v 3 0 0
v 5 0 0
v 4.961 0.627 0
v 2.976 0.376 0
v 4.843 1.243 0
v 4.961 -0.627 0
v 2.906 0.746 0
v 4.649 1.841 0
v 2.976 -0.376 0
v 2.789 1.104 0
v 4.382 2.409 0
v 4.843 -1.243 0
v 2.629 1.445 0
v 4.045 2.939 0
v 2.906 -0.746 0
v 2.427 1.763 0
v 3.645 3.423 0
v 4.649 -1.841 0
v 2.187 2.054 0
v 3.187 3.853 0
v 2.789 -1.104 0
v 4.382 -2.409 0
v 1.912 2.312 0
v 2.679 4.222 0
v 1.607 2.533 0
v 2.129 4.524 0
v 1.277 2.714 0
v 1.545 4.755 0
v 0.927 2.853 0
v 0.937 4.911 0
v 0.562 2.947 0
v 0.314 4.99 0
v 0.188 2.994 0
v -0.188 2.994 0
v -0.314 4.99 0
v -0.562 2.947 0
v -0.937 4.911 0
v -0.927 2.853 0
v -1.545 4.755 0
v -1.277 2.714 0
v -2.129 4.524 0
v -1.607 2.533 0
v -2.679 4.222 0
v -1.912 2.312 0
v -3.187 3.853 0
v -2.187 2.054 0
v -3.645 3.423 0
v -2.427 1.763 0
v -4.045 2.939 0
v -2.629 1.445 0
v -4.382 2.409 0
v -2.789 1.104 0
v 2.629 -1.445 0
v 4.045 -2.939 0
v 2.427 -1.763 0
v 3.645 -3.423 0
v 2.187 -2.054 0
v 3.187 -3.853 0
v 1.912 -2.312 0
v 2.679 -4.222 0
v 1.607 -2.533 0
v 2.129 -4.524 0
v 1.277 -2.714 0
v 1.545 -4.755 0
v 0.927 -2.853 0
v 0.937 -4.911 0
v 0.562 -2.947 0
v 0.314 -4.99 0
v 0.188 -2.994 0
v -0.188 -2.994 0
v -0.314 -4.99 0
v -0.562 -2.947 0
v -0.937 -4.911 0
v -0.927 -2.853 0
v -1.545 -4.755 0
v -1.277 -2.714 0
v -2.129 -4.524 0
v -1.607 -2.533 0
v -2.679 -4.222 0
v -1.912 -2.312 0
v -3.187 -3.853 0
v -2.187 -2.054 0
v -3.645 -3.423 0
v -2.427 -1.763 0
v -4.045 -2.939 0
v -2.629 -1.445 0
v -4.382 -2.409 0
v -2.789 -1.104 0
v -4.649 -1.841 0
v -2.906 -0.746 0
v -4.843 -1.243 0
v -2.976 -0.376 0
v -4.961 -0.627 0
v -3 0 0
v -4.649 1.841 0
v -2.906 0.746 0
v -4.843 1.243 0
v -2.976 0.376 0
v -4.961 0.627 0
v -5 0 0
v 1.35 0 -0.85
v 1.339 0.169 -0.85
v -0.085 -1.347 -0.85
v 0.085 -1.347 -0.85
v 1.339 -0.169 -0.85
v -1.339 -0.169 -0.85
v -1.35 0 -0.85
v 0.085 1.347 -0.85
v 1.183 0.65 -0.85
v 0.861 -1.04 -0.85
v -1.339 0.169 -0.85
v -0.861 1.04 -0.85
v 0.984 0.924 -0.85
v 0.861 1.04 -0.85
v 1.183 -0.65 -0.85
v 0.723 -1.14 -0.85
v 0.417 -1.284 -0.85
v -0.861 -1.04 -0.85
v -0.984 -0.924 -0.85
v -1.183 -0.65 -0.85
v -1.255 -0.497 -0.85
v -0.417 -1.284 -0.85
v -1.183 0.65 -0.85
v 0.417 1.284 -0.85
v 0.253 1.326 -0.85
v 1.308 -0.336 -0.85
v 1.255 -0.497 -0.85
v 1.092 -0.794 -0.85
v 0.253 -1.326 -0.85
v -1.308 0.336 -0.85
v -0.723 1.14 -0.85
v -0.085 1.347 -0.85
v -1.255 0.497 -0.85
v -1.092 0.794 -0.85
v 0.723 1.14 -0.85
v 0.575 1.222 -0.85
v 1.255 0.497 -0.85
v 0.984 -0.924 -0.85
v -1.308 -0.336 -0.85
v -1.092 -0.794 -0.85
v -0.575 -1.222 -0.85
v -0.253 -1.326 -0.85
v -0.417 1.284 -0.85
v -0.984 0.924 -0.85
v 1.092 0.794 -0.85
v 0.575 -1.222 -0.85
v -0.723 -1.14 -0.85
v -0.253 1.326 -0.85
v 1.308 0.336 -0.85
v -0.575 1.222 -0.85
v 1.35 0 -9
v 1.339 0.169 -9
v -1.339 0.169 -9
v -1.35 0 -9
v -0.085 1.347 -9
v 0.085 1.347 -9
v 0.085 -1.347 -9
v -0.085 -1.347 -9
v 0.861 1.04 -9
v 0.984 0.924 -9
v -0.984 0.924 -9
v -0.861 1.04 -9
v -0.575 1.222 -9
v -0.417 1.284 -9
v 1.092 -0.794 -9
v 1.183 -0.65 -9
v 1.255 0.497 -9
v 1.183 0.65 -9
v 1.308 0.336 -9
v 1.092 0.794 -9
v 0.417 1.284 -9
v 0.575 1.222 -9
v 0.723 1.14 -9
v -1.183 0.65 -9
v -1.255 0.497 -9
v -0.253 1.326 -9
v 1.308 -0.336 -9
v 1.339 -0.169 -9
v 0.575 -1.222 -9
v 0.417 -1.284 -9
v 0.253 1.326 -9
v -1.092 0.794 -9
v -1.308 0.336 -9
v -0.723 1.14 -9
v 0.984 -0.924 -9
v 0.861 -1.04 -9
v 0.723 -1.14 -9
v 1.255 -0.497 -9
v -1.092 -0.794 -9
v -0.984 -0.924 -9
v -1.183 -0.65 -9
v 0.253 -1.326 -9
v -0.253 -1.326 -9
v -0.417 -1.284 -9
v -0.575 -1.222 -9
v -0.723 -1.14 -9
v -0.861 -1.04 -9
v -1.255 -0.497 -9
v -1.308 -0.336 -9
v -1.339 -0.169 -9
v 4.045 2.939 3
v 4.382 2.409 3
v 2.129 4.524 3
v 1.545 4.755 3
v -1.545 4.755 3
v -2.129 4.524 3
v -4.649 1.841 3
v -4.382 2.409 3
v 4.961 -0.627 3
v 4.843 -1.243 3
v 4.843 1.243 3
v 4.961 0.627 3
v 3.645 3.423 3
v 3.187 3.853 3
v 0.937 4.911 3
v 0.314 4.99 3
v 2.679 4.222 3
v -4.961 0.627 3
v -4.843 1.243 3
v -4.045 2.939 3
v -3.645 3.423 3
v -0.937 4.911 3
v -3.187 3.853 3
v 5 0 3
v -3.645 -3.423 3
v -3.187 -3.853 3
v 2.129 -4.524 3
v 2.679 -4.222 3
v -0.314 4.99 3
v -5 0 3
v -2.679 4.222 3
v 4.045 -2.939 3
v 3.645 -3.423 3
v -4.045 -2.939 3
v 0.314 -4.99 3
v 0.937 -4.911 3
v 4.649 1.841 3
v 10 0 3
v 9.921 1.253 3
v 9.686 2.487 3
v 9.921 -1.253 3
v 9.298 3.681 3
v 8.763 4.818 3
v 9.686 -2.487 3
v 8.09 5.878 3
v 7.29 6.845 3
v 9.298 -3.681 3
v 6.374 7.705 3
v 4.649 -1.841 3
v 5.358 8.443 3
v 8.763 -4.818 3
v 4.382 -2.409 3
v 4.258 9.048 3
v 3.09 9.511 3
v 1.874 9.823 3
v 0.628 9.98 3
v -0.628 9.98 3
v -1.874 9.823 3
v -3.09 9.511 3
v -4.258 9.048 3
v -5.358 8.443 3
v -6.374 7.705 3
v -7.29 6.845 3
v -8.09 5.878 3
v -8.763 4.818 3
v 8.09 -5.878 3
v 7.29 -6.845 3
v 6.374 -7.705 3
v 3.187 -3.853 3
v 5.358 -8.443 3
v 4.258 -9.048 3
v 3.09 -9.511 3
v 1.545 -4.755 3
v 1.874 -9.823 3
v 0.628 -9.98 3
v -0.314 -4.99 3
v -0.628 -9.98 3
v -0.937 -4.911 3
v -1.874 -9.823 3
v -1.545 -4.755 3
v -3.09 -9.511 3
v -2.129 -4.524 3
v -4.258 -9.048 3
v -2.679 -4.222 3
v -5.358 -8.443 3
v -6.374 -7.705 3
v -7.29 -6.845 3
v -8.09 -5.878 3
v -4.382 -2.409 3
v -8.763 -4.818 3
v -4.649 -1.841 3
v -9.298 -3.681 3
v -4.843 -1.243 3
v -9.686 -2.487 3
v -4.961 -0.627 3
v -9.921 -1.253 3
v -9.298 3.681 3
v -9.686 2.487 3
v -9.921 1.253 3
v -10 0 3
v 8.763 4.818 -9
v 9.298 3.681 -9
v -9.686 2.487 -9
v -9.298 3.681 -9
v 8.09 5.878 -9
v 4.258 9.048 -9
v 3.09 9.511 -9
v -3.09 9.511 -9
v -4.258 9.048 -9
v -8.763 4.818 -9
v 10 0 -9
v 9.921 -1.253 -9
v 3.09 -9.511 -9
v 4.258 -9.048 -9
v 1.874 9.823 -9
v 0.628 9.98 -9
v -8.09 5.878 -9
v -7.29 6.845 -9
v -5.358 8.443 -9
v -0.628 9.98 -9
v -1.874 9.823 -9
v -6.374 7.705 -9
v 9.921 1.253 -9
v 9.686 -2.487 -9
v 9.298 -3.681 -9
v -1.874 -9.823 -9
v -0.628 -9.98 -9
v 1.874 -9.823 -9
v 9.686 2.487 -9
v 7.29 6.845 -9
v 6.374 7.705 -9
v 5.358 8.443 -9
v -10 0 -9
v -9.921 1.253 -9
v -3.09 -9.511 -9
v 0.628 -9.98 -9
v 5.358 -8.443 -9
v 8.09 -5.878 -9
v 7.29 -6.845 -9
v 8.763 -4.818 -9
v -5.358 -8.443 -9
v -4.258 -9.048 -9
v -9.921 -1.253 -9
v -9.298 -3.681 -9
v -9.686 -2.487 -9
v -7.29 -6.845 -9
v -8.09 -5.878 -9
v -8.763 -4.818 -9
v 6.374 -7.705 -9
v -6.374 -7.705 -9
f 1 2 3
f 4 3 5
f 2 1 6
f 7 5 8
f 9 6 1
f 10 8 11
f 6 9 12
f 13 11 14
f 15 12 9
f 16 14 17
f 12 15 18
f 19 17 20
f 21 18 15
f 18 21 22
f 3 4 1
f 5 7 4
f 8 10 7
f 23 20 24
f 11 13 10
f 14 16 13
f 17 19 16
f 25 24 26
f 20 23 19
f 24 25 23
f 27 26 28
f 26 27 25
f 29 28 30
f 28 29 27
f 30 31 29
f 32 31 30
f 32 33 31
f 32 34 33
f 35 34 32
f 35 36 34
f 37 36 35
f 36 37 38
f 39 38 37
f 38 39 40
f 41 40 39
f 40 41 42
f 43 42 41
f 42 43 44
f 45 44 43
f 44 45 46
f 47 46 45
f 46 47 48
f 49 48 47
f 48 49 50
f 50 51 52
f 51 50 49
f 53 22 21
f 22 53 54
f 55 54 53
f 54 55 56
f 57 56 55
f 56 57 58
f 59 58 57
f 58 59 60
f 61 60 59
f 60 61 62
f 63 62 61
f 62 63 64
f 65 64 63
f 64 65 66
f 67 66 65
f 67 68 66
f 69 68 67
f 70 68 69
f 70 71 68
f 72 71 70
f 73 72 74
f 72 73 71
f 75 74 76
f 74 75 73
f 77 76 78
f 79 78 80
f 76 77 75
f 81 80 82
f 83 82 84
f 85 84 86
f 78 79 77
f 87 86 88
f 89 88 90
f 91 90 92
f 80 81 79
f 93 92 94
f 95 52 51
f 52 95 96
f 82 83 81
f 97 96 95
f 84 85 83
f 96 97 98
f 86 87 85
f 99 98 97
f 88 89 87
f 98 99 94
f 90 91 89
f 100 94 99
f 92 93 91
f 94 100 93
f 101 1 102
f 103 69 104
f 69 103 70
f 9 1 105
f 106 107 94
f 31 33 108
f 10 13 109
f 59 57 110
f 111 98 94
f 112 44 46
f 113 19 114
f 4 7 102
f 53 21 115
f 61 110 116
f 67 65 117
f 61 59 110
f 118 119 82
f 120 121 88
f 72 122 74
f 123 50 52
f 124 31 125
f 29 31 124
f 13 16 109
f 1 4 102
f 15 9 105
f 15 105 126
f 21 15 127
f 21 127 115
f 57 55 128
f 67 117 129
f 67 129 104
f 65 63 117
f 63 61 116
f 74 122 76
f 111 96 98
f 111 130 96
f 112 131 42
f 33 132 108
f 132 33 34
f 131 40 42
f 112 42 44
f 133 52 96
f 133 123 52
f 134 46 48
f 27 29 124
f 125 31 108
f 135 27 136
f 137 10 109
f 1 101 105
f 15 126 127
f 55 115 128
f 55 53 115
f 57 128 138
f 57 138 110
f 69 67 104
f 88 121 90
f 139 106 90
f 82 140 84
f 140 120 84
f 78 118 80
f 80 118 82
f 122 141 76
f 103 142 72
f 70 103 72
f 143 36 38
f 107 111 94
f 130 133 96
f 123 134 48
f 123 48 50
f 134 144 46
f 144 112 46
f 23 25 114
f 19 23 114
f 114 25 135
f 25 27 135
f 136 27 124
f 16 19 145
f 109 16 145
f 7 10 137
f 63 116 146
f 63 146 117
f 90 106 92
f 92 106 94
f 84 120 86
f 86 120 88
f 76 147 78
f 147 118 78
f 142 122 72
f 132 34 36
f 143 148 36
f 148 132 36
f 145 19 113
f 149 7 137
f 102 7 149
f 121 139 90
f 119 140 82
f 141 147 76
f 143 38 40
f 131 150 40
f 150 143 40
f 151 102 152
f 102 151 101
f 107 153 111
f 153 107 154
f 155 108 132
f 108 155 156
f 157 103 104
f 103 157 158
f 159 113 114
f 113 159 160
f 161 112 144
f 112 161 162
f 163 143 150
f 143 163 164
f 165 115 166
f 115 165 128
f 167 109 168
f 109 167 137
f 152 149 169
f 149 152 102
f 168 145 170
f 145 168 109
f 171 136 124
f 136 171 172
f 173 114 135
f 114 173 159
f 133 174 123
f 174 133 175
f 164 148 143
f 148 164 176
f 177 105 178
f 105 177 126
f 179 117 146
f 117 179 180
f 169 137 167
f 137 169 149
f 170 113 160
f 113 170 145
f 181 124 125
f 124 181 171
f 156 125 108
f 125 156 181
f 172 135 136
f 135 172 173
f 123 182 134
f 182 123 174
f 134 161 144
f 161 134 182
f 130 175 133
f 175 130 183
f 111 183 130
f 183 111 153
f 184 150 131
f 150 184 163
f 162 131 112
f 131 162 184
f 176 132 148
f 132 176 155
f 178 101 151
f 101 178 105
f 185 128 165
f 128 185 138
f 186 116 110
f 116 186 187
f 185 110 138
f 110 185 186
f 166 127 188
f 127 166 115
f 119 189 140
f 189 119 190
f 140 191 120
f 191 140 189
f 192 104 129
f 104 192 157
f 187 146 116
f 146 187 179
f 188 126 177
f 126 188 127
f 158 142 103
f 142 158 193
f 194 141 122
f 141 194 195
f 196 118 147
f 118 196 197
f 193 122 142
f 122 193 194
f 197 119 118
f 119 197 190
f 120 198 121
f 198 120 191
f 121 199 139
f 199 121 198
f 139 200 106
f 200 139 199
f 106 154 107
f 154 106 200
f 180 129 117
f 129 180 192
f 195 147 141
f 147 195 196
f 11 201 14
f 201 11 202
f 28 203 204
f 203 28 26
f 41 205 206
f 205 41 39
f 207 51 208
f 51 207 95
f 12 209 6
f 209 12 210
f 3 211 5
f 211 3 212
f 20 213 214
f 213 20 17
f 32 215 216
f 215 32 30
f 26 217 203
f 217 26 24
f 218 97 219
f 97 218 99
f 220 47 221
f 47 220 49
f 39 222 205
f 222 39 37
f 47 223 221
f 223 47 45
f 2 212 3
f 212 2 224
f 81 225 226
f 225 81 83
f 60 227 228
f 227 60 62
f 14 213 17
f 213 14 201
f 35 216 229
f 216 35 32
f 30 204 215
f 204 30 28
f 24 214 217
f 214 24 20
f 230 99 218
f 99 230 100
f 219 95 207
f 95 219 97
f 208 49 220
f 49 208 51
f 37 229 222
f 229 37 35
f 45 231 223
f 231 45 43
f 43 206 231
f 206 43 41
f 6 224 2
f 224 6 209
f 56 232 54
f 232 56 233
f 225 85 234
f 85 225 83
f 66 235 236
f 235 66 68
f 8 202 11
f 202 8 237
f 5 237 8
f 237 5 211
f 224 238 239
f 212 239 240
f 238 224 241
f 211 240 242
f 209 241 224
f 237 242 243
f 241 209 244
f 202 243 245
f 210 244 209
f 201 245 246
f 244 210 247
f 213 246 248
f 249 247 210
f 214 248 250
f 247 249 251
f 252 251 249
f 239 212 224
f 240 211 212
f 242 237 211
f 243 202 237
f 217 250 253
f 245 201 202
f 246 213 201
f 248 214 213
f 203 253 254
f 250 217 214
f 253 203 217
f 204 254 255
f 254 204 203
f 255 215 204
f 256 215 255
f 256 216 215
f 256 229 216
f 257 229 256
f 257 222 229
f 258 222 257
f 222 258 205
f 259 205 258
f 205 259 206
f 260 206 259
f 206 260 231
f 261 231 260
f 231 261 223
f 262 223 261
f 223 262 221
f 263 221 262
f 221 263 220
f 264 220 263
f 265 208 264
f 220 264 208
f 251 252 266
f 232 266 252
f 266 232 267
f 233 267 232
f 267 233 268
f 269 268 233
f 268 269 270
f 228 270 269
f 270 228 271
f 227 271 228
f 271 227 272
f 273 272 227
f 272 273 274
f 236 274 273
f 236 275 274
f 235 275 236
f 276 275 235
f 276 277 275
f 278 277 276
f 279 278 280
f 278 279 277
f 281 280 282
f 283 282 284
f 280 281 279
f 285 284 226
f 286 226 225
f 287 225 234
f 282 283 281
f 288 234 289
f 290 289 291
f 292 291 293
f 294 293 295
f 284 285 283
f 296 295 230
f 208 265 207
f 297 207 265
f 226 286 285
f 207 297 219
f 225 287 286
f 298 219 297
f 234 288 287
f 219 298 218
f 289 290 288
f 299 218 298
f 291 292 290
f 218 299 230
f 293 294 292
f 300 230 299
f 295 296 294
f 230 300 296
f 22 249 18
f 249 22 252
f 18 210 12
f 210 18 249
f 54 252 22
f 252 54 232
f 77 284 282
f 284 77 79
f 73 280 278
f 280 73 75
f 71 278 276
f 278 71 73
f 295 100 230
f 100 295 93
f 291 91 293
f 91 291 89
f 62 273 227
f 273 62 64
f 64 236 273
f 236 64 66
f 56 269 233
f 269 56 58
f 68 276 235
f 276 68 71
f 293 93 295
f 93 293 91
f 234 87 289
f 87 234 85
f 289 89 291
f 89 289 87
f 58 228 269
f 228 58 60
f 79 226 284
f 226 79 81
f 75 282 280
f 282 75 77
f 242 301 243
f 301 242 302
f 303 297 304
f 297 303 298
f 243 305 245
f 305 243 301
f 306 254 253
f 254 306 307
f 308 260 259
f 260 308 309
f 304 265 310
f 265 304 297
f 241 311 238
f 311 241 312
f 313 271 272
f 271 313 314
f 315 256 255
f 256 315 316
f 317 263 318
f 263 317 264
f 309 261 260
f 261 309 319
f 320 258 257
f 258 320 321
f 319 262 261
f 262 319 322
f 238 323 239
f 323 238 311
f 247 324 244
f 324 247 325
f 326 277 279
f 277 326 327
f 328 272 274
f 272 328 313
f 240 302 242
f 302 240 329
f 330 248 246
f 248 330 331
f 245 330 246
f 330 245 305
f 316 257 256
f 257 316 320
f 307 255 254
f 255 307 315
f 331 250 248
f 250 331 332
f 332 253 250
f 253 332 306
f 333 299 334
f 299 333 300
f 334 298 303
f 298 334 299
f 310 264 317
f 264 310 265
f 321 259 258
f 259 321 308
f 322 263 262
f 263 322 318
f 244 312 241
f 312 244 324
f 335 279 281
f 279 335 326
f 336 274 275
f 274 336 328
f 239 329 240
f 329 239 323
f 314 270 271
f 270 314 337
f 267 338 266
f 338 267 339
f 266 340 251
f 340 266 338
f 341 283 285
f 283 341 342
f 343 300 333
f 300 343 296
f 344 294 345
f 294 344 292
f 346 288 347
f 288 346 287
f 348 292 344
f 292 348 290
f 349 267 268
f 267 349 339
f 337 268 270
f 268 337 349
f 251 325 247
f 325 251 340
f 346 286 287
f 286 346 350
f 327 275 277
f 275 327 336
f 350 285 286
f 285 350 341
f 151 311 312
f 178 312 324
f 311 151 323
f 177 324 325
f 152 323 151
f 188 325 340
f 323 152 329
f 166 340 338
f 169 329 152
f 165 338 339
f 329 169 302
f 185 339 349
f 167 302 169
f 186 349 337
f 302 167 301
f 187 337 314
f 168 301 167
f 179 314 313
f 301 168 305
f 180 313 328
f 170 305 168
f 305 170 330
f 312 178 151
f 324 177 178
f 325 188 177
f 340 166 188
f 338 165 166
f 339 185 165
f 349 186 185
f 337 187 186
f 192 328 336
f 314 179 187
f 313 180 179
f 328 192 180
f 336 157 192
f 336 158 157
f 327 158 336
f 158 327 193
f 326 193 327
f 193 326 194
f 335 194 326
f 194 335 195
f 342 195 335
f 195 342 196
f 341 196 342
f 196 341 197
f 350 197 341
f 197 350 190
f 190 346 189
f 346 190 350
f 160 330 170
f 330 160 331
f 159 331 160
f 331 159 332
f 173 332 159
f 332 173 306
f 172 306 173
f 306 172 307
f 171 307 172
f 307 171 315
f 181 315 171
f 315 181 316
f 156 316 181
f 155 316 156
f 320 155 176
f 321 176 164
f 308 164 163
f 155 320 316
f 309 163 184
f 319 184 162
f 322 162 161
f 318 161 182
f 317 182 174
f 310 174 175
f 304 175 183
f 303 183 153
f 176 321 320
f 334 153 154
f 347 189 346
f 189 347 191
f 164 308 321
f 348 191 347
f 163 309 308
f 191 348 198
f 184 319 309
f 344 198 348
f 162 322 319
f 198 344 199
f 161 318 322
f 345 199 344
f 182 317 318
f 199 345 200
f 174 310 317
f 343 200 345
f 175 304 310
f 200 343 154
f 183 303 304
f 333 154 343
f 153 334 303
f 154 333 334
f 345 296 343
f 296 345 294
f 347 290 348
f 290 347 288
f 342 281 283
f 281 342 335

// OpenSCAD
$fn = 50;

difference() {
	union() {
		translate(v = [0, 0, -9.0]) {
			cylinder(h = 12, r = 10.0);
		}
	}
	union() {
		translate(v = [0, 0, 0]) {
			rotate(a = [0, 0, 0]) {
				difference() {
					union() {
						translate(v = [0, 0, -12.0]) {
							cylinder(h = 12, r = 1.0);
						}
						translate(v = [0, 0, -0.85]) {
							cylinder(h = 0.85, r1 = 1.35, r2 = 3.0);
						}
						translate(v = [0, 0, -12.0]) {
							cylinder(h = 12, r = 1.35);
						}
						translate(v = [0, 0, -12.0]) {
							cylinder(h = 12, r = 1.0);
						}
					}
					union();
				}
			}
		}
		#cylinder(h = 3, r = 5.0);
	}
}
